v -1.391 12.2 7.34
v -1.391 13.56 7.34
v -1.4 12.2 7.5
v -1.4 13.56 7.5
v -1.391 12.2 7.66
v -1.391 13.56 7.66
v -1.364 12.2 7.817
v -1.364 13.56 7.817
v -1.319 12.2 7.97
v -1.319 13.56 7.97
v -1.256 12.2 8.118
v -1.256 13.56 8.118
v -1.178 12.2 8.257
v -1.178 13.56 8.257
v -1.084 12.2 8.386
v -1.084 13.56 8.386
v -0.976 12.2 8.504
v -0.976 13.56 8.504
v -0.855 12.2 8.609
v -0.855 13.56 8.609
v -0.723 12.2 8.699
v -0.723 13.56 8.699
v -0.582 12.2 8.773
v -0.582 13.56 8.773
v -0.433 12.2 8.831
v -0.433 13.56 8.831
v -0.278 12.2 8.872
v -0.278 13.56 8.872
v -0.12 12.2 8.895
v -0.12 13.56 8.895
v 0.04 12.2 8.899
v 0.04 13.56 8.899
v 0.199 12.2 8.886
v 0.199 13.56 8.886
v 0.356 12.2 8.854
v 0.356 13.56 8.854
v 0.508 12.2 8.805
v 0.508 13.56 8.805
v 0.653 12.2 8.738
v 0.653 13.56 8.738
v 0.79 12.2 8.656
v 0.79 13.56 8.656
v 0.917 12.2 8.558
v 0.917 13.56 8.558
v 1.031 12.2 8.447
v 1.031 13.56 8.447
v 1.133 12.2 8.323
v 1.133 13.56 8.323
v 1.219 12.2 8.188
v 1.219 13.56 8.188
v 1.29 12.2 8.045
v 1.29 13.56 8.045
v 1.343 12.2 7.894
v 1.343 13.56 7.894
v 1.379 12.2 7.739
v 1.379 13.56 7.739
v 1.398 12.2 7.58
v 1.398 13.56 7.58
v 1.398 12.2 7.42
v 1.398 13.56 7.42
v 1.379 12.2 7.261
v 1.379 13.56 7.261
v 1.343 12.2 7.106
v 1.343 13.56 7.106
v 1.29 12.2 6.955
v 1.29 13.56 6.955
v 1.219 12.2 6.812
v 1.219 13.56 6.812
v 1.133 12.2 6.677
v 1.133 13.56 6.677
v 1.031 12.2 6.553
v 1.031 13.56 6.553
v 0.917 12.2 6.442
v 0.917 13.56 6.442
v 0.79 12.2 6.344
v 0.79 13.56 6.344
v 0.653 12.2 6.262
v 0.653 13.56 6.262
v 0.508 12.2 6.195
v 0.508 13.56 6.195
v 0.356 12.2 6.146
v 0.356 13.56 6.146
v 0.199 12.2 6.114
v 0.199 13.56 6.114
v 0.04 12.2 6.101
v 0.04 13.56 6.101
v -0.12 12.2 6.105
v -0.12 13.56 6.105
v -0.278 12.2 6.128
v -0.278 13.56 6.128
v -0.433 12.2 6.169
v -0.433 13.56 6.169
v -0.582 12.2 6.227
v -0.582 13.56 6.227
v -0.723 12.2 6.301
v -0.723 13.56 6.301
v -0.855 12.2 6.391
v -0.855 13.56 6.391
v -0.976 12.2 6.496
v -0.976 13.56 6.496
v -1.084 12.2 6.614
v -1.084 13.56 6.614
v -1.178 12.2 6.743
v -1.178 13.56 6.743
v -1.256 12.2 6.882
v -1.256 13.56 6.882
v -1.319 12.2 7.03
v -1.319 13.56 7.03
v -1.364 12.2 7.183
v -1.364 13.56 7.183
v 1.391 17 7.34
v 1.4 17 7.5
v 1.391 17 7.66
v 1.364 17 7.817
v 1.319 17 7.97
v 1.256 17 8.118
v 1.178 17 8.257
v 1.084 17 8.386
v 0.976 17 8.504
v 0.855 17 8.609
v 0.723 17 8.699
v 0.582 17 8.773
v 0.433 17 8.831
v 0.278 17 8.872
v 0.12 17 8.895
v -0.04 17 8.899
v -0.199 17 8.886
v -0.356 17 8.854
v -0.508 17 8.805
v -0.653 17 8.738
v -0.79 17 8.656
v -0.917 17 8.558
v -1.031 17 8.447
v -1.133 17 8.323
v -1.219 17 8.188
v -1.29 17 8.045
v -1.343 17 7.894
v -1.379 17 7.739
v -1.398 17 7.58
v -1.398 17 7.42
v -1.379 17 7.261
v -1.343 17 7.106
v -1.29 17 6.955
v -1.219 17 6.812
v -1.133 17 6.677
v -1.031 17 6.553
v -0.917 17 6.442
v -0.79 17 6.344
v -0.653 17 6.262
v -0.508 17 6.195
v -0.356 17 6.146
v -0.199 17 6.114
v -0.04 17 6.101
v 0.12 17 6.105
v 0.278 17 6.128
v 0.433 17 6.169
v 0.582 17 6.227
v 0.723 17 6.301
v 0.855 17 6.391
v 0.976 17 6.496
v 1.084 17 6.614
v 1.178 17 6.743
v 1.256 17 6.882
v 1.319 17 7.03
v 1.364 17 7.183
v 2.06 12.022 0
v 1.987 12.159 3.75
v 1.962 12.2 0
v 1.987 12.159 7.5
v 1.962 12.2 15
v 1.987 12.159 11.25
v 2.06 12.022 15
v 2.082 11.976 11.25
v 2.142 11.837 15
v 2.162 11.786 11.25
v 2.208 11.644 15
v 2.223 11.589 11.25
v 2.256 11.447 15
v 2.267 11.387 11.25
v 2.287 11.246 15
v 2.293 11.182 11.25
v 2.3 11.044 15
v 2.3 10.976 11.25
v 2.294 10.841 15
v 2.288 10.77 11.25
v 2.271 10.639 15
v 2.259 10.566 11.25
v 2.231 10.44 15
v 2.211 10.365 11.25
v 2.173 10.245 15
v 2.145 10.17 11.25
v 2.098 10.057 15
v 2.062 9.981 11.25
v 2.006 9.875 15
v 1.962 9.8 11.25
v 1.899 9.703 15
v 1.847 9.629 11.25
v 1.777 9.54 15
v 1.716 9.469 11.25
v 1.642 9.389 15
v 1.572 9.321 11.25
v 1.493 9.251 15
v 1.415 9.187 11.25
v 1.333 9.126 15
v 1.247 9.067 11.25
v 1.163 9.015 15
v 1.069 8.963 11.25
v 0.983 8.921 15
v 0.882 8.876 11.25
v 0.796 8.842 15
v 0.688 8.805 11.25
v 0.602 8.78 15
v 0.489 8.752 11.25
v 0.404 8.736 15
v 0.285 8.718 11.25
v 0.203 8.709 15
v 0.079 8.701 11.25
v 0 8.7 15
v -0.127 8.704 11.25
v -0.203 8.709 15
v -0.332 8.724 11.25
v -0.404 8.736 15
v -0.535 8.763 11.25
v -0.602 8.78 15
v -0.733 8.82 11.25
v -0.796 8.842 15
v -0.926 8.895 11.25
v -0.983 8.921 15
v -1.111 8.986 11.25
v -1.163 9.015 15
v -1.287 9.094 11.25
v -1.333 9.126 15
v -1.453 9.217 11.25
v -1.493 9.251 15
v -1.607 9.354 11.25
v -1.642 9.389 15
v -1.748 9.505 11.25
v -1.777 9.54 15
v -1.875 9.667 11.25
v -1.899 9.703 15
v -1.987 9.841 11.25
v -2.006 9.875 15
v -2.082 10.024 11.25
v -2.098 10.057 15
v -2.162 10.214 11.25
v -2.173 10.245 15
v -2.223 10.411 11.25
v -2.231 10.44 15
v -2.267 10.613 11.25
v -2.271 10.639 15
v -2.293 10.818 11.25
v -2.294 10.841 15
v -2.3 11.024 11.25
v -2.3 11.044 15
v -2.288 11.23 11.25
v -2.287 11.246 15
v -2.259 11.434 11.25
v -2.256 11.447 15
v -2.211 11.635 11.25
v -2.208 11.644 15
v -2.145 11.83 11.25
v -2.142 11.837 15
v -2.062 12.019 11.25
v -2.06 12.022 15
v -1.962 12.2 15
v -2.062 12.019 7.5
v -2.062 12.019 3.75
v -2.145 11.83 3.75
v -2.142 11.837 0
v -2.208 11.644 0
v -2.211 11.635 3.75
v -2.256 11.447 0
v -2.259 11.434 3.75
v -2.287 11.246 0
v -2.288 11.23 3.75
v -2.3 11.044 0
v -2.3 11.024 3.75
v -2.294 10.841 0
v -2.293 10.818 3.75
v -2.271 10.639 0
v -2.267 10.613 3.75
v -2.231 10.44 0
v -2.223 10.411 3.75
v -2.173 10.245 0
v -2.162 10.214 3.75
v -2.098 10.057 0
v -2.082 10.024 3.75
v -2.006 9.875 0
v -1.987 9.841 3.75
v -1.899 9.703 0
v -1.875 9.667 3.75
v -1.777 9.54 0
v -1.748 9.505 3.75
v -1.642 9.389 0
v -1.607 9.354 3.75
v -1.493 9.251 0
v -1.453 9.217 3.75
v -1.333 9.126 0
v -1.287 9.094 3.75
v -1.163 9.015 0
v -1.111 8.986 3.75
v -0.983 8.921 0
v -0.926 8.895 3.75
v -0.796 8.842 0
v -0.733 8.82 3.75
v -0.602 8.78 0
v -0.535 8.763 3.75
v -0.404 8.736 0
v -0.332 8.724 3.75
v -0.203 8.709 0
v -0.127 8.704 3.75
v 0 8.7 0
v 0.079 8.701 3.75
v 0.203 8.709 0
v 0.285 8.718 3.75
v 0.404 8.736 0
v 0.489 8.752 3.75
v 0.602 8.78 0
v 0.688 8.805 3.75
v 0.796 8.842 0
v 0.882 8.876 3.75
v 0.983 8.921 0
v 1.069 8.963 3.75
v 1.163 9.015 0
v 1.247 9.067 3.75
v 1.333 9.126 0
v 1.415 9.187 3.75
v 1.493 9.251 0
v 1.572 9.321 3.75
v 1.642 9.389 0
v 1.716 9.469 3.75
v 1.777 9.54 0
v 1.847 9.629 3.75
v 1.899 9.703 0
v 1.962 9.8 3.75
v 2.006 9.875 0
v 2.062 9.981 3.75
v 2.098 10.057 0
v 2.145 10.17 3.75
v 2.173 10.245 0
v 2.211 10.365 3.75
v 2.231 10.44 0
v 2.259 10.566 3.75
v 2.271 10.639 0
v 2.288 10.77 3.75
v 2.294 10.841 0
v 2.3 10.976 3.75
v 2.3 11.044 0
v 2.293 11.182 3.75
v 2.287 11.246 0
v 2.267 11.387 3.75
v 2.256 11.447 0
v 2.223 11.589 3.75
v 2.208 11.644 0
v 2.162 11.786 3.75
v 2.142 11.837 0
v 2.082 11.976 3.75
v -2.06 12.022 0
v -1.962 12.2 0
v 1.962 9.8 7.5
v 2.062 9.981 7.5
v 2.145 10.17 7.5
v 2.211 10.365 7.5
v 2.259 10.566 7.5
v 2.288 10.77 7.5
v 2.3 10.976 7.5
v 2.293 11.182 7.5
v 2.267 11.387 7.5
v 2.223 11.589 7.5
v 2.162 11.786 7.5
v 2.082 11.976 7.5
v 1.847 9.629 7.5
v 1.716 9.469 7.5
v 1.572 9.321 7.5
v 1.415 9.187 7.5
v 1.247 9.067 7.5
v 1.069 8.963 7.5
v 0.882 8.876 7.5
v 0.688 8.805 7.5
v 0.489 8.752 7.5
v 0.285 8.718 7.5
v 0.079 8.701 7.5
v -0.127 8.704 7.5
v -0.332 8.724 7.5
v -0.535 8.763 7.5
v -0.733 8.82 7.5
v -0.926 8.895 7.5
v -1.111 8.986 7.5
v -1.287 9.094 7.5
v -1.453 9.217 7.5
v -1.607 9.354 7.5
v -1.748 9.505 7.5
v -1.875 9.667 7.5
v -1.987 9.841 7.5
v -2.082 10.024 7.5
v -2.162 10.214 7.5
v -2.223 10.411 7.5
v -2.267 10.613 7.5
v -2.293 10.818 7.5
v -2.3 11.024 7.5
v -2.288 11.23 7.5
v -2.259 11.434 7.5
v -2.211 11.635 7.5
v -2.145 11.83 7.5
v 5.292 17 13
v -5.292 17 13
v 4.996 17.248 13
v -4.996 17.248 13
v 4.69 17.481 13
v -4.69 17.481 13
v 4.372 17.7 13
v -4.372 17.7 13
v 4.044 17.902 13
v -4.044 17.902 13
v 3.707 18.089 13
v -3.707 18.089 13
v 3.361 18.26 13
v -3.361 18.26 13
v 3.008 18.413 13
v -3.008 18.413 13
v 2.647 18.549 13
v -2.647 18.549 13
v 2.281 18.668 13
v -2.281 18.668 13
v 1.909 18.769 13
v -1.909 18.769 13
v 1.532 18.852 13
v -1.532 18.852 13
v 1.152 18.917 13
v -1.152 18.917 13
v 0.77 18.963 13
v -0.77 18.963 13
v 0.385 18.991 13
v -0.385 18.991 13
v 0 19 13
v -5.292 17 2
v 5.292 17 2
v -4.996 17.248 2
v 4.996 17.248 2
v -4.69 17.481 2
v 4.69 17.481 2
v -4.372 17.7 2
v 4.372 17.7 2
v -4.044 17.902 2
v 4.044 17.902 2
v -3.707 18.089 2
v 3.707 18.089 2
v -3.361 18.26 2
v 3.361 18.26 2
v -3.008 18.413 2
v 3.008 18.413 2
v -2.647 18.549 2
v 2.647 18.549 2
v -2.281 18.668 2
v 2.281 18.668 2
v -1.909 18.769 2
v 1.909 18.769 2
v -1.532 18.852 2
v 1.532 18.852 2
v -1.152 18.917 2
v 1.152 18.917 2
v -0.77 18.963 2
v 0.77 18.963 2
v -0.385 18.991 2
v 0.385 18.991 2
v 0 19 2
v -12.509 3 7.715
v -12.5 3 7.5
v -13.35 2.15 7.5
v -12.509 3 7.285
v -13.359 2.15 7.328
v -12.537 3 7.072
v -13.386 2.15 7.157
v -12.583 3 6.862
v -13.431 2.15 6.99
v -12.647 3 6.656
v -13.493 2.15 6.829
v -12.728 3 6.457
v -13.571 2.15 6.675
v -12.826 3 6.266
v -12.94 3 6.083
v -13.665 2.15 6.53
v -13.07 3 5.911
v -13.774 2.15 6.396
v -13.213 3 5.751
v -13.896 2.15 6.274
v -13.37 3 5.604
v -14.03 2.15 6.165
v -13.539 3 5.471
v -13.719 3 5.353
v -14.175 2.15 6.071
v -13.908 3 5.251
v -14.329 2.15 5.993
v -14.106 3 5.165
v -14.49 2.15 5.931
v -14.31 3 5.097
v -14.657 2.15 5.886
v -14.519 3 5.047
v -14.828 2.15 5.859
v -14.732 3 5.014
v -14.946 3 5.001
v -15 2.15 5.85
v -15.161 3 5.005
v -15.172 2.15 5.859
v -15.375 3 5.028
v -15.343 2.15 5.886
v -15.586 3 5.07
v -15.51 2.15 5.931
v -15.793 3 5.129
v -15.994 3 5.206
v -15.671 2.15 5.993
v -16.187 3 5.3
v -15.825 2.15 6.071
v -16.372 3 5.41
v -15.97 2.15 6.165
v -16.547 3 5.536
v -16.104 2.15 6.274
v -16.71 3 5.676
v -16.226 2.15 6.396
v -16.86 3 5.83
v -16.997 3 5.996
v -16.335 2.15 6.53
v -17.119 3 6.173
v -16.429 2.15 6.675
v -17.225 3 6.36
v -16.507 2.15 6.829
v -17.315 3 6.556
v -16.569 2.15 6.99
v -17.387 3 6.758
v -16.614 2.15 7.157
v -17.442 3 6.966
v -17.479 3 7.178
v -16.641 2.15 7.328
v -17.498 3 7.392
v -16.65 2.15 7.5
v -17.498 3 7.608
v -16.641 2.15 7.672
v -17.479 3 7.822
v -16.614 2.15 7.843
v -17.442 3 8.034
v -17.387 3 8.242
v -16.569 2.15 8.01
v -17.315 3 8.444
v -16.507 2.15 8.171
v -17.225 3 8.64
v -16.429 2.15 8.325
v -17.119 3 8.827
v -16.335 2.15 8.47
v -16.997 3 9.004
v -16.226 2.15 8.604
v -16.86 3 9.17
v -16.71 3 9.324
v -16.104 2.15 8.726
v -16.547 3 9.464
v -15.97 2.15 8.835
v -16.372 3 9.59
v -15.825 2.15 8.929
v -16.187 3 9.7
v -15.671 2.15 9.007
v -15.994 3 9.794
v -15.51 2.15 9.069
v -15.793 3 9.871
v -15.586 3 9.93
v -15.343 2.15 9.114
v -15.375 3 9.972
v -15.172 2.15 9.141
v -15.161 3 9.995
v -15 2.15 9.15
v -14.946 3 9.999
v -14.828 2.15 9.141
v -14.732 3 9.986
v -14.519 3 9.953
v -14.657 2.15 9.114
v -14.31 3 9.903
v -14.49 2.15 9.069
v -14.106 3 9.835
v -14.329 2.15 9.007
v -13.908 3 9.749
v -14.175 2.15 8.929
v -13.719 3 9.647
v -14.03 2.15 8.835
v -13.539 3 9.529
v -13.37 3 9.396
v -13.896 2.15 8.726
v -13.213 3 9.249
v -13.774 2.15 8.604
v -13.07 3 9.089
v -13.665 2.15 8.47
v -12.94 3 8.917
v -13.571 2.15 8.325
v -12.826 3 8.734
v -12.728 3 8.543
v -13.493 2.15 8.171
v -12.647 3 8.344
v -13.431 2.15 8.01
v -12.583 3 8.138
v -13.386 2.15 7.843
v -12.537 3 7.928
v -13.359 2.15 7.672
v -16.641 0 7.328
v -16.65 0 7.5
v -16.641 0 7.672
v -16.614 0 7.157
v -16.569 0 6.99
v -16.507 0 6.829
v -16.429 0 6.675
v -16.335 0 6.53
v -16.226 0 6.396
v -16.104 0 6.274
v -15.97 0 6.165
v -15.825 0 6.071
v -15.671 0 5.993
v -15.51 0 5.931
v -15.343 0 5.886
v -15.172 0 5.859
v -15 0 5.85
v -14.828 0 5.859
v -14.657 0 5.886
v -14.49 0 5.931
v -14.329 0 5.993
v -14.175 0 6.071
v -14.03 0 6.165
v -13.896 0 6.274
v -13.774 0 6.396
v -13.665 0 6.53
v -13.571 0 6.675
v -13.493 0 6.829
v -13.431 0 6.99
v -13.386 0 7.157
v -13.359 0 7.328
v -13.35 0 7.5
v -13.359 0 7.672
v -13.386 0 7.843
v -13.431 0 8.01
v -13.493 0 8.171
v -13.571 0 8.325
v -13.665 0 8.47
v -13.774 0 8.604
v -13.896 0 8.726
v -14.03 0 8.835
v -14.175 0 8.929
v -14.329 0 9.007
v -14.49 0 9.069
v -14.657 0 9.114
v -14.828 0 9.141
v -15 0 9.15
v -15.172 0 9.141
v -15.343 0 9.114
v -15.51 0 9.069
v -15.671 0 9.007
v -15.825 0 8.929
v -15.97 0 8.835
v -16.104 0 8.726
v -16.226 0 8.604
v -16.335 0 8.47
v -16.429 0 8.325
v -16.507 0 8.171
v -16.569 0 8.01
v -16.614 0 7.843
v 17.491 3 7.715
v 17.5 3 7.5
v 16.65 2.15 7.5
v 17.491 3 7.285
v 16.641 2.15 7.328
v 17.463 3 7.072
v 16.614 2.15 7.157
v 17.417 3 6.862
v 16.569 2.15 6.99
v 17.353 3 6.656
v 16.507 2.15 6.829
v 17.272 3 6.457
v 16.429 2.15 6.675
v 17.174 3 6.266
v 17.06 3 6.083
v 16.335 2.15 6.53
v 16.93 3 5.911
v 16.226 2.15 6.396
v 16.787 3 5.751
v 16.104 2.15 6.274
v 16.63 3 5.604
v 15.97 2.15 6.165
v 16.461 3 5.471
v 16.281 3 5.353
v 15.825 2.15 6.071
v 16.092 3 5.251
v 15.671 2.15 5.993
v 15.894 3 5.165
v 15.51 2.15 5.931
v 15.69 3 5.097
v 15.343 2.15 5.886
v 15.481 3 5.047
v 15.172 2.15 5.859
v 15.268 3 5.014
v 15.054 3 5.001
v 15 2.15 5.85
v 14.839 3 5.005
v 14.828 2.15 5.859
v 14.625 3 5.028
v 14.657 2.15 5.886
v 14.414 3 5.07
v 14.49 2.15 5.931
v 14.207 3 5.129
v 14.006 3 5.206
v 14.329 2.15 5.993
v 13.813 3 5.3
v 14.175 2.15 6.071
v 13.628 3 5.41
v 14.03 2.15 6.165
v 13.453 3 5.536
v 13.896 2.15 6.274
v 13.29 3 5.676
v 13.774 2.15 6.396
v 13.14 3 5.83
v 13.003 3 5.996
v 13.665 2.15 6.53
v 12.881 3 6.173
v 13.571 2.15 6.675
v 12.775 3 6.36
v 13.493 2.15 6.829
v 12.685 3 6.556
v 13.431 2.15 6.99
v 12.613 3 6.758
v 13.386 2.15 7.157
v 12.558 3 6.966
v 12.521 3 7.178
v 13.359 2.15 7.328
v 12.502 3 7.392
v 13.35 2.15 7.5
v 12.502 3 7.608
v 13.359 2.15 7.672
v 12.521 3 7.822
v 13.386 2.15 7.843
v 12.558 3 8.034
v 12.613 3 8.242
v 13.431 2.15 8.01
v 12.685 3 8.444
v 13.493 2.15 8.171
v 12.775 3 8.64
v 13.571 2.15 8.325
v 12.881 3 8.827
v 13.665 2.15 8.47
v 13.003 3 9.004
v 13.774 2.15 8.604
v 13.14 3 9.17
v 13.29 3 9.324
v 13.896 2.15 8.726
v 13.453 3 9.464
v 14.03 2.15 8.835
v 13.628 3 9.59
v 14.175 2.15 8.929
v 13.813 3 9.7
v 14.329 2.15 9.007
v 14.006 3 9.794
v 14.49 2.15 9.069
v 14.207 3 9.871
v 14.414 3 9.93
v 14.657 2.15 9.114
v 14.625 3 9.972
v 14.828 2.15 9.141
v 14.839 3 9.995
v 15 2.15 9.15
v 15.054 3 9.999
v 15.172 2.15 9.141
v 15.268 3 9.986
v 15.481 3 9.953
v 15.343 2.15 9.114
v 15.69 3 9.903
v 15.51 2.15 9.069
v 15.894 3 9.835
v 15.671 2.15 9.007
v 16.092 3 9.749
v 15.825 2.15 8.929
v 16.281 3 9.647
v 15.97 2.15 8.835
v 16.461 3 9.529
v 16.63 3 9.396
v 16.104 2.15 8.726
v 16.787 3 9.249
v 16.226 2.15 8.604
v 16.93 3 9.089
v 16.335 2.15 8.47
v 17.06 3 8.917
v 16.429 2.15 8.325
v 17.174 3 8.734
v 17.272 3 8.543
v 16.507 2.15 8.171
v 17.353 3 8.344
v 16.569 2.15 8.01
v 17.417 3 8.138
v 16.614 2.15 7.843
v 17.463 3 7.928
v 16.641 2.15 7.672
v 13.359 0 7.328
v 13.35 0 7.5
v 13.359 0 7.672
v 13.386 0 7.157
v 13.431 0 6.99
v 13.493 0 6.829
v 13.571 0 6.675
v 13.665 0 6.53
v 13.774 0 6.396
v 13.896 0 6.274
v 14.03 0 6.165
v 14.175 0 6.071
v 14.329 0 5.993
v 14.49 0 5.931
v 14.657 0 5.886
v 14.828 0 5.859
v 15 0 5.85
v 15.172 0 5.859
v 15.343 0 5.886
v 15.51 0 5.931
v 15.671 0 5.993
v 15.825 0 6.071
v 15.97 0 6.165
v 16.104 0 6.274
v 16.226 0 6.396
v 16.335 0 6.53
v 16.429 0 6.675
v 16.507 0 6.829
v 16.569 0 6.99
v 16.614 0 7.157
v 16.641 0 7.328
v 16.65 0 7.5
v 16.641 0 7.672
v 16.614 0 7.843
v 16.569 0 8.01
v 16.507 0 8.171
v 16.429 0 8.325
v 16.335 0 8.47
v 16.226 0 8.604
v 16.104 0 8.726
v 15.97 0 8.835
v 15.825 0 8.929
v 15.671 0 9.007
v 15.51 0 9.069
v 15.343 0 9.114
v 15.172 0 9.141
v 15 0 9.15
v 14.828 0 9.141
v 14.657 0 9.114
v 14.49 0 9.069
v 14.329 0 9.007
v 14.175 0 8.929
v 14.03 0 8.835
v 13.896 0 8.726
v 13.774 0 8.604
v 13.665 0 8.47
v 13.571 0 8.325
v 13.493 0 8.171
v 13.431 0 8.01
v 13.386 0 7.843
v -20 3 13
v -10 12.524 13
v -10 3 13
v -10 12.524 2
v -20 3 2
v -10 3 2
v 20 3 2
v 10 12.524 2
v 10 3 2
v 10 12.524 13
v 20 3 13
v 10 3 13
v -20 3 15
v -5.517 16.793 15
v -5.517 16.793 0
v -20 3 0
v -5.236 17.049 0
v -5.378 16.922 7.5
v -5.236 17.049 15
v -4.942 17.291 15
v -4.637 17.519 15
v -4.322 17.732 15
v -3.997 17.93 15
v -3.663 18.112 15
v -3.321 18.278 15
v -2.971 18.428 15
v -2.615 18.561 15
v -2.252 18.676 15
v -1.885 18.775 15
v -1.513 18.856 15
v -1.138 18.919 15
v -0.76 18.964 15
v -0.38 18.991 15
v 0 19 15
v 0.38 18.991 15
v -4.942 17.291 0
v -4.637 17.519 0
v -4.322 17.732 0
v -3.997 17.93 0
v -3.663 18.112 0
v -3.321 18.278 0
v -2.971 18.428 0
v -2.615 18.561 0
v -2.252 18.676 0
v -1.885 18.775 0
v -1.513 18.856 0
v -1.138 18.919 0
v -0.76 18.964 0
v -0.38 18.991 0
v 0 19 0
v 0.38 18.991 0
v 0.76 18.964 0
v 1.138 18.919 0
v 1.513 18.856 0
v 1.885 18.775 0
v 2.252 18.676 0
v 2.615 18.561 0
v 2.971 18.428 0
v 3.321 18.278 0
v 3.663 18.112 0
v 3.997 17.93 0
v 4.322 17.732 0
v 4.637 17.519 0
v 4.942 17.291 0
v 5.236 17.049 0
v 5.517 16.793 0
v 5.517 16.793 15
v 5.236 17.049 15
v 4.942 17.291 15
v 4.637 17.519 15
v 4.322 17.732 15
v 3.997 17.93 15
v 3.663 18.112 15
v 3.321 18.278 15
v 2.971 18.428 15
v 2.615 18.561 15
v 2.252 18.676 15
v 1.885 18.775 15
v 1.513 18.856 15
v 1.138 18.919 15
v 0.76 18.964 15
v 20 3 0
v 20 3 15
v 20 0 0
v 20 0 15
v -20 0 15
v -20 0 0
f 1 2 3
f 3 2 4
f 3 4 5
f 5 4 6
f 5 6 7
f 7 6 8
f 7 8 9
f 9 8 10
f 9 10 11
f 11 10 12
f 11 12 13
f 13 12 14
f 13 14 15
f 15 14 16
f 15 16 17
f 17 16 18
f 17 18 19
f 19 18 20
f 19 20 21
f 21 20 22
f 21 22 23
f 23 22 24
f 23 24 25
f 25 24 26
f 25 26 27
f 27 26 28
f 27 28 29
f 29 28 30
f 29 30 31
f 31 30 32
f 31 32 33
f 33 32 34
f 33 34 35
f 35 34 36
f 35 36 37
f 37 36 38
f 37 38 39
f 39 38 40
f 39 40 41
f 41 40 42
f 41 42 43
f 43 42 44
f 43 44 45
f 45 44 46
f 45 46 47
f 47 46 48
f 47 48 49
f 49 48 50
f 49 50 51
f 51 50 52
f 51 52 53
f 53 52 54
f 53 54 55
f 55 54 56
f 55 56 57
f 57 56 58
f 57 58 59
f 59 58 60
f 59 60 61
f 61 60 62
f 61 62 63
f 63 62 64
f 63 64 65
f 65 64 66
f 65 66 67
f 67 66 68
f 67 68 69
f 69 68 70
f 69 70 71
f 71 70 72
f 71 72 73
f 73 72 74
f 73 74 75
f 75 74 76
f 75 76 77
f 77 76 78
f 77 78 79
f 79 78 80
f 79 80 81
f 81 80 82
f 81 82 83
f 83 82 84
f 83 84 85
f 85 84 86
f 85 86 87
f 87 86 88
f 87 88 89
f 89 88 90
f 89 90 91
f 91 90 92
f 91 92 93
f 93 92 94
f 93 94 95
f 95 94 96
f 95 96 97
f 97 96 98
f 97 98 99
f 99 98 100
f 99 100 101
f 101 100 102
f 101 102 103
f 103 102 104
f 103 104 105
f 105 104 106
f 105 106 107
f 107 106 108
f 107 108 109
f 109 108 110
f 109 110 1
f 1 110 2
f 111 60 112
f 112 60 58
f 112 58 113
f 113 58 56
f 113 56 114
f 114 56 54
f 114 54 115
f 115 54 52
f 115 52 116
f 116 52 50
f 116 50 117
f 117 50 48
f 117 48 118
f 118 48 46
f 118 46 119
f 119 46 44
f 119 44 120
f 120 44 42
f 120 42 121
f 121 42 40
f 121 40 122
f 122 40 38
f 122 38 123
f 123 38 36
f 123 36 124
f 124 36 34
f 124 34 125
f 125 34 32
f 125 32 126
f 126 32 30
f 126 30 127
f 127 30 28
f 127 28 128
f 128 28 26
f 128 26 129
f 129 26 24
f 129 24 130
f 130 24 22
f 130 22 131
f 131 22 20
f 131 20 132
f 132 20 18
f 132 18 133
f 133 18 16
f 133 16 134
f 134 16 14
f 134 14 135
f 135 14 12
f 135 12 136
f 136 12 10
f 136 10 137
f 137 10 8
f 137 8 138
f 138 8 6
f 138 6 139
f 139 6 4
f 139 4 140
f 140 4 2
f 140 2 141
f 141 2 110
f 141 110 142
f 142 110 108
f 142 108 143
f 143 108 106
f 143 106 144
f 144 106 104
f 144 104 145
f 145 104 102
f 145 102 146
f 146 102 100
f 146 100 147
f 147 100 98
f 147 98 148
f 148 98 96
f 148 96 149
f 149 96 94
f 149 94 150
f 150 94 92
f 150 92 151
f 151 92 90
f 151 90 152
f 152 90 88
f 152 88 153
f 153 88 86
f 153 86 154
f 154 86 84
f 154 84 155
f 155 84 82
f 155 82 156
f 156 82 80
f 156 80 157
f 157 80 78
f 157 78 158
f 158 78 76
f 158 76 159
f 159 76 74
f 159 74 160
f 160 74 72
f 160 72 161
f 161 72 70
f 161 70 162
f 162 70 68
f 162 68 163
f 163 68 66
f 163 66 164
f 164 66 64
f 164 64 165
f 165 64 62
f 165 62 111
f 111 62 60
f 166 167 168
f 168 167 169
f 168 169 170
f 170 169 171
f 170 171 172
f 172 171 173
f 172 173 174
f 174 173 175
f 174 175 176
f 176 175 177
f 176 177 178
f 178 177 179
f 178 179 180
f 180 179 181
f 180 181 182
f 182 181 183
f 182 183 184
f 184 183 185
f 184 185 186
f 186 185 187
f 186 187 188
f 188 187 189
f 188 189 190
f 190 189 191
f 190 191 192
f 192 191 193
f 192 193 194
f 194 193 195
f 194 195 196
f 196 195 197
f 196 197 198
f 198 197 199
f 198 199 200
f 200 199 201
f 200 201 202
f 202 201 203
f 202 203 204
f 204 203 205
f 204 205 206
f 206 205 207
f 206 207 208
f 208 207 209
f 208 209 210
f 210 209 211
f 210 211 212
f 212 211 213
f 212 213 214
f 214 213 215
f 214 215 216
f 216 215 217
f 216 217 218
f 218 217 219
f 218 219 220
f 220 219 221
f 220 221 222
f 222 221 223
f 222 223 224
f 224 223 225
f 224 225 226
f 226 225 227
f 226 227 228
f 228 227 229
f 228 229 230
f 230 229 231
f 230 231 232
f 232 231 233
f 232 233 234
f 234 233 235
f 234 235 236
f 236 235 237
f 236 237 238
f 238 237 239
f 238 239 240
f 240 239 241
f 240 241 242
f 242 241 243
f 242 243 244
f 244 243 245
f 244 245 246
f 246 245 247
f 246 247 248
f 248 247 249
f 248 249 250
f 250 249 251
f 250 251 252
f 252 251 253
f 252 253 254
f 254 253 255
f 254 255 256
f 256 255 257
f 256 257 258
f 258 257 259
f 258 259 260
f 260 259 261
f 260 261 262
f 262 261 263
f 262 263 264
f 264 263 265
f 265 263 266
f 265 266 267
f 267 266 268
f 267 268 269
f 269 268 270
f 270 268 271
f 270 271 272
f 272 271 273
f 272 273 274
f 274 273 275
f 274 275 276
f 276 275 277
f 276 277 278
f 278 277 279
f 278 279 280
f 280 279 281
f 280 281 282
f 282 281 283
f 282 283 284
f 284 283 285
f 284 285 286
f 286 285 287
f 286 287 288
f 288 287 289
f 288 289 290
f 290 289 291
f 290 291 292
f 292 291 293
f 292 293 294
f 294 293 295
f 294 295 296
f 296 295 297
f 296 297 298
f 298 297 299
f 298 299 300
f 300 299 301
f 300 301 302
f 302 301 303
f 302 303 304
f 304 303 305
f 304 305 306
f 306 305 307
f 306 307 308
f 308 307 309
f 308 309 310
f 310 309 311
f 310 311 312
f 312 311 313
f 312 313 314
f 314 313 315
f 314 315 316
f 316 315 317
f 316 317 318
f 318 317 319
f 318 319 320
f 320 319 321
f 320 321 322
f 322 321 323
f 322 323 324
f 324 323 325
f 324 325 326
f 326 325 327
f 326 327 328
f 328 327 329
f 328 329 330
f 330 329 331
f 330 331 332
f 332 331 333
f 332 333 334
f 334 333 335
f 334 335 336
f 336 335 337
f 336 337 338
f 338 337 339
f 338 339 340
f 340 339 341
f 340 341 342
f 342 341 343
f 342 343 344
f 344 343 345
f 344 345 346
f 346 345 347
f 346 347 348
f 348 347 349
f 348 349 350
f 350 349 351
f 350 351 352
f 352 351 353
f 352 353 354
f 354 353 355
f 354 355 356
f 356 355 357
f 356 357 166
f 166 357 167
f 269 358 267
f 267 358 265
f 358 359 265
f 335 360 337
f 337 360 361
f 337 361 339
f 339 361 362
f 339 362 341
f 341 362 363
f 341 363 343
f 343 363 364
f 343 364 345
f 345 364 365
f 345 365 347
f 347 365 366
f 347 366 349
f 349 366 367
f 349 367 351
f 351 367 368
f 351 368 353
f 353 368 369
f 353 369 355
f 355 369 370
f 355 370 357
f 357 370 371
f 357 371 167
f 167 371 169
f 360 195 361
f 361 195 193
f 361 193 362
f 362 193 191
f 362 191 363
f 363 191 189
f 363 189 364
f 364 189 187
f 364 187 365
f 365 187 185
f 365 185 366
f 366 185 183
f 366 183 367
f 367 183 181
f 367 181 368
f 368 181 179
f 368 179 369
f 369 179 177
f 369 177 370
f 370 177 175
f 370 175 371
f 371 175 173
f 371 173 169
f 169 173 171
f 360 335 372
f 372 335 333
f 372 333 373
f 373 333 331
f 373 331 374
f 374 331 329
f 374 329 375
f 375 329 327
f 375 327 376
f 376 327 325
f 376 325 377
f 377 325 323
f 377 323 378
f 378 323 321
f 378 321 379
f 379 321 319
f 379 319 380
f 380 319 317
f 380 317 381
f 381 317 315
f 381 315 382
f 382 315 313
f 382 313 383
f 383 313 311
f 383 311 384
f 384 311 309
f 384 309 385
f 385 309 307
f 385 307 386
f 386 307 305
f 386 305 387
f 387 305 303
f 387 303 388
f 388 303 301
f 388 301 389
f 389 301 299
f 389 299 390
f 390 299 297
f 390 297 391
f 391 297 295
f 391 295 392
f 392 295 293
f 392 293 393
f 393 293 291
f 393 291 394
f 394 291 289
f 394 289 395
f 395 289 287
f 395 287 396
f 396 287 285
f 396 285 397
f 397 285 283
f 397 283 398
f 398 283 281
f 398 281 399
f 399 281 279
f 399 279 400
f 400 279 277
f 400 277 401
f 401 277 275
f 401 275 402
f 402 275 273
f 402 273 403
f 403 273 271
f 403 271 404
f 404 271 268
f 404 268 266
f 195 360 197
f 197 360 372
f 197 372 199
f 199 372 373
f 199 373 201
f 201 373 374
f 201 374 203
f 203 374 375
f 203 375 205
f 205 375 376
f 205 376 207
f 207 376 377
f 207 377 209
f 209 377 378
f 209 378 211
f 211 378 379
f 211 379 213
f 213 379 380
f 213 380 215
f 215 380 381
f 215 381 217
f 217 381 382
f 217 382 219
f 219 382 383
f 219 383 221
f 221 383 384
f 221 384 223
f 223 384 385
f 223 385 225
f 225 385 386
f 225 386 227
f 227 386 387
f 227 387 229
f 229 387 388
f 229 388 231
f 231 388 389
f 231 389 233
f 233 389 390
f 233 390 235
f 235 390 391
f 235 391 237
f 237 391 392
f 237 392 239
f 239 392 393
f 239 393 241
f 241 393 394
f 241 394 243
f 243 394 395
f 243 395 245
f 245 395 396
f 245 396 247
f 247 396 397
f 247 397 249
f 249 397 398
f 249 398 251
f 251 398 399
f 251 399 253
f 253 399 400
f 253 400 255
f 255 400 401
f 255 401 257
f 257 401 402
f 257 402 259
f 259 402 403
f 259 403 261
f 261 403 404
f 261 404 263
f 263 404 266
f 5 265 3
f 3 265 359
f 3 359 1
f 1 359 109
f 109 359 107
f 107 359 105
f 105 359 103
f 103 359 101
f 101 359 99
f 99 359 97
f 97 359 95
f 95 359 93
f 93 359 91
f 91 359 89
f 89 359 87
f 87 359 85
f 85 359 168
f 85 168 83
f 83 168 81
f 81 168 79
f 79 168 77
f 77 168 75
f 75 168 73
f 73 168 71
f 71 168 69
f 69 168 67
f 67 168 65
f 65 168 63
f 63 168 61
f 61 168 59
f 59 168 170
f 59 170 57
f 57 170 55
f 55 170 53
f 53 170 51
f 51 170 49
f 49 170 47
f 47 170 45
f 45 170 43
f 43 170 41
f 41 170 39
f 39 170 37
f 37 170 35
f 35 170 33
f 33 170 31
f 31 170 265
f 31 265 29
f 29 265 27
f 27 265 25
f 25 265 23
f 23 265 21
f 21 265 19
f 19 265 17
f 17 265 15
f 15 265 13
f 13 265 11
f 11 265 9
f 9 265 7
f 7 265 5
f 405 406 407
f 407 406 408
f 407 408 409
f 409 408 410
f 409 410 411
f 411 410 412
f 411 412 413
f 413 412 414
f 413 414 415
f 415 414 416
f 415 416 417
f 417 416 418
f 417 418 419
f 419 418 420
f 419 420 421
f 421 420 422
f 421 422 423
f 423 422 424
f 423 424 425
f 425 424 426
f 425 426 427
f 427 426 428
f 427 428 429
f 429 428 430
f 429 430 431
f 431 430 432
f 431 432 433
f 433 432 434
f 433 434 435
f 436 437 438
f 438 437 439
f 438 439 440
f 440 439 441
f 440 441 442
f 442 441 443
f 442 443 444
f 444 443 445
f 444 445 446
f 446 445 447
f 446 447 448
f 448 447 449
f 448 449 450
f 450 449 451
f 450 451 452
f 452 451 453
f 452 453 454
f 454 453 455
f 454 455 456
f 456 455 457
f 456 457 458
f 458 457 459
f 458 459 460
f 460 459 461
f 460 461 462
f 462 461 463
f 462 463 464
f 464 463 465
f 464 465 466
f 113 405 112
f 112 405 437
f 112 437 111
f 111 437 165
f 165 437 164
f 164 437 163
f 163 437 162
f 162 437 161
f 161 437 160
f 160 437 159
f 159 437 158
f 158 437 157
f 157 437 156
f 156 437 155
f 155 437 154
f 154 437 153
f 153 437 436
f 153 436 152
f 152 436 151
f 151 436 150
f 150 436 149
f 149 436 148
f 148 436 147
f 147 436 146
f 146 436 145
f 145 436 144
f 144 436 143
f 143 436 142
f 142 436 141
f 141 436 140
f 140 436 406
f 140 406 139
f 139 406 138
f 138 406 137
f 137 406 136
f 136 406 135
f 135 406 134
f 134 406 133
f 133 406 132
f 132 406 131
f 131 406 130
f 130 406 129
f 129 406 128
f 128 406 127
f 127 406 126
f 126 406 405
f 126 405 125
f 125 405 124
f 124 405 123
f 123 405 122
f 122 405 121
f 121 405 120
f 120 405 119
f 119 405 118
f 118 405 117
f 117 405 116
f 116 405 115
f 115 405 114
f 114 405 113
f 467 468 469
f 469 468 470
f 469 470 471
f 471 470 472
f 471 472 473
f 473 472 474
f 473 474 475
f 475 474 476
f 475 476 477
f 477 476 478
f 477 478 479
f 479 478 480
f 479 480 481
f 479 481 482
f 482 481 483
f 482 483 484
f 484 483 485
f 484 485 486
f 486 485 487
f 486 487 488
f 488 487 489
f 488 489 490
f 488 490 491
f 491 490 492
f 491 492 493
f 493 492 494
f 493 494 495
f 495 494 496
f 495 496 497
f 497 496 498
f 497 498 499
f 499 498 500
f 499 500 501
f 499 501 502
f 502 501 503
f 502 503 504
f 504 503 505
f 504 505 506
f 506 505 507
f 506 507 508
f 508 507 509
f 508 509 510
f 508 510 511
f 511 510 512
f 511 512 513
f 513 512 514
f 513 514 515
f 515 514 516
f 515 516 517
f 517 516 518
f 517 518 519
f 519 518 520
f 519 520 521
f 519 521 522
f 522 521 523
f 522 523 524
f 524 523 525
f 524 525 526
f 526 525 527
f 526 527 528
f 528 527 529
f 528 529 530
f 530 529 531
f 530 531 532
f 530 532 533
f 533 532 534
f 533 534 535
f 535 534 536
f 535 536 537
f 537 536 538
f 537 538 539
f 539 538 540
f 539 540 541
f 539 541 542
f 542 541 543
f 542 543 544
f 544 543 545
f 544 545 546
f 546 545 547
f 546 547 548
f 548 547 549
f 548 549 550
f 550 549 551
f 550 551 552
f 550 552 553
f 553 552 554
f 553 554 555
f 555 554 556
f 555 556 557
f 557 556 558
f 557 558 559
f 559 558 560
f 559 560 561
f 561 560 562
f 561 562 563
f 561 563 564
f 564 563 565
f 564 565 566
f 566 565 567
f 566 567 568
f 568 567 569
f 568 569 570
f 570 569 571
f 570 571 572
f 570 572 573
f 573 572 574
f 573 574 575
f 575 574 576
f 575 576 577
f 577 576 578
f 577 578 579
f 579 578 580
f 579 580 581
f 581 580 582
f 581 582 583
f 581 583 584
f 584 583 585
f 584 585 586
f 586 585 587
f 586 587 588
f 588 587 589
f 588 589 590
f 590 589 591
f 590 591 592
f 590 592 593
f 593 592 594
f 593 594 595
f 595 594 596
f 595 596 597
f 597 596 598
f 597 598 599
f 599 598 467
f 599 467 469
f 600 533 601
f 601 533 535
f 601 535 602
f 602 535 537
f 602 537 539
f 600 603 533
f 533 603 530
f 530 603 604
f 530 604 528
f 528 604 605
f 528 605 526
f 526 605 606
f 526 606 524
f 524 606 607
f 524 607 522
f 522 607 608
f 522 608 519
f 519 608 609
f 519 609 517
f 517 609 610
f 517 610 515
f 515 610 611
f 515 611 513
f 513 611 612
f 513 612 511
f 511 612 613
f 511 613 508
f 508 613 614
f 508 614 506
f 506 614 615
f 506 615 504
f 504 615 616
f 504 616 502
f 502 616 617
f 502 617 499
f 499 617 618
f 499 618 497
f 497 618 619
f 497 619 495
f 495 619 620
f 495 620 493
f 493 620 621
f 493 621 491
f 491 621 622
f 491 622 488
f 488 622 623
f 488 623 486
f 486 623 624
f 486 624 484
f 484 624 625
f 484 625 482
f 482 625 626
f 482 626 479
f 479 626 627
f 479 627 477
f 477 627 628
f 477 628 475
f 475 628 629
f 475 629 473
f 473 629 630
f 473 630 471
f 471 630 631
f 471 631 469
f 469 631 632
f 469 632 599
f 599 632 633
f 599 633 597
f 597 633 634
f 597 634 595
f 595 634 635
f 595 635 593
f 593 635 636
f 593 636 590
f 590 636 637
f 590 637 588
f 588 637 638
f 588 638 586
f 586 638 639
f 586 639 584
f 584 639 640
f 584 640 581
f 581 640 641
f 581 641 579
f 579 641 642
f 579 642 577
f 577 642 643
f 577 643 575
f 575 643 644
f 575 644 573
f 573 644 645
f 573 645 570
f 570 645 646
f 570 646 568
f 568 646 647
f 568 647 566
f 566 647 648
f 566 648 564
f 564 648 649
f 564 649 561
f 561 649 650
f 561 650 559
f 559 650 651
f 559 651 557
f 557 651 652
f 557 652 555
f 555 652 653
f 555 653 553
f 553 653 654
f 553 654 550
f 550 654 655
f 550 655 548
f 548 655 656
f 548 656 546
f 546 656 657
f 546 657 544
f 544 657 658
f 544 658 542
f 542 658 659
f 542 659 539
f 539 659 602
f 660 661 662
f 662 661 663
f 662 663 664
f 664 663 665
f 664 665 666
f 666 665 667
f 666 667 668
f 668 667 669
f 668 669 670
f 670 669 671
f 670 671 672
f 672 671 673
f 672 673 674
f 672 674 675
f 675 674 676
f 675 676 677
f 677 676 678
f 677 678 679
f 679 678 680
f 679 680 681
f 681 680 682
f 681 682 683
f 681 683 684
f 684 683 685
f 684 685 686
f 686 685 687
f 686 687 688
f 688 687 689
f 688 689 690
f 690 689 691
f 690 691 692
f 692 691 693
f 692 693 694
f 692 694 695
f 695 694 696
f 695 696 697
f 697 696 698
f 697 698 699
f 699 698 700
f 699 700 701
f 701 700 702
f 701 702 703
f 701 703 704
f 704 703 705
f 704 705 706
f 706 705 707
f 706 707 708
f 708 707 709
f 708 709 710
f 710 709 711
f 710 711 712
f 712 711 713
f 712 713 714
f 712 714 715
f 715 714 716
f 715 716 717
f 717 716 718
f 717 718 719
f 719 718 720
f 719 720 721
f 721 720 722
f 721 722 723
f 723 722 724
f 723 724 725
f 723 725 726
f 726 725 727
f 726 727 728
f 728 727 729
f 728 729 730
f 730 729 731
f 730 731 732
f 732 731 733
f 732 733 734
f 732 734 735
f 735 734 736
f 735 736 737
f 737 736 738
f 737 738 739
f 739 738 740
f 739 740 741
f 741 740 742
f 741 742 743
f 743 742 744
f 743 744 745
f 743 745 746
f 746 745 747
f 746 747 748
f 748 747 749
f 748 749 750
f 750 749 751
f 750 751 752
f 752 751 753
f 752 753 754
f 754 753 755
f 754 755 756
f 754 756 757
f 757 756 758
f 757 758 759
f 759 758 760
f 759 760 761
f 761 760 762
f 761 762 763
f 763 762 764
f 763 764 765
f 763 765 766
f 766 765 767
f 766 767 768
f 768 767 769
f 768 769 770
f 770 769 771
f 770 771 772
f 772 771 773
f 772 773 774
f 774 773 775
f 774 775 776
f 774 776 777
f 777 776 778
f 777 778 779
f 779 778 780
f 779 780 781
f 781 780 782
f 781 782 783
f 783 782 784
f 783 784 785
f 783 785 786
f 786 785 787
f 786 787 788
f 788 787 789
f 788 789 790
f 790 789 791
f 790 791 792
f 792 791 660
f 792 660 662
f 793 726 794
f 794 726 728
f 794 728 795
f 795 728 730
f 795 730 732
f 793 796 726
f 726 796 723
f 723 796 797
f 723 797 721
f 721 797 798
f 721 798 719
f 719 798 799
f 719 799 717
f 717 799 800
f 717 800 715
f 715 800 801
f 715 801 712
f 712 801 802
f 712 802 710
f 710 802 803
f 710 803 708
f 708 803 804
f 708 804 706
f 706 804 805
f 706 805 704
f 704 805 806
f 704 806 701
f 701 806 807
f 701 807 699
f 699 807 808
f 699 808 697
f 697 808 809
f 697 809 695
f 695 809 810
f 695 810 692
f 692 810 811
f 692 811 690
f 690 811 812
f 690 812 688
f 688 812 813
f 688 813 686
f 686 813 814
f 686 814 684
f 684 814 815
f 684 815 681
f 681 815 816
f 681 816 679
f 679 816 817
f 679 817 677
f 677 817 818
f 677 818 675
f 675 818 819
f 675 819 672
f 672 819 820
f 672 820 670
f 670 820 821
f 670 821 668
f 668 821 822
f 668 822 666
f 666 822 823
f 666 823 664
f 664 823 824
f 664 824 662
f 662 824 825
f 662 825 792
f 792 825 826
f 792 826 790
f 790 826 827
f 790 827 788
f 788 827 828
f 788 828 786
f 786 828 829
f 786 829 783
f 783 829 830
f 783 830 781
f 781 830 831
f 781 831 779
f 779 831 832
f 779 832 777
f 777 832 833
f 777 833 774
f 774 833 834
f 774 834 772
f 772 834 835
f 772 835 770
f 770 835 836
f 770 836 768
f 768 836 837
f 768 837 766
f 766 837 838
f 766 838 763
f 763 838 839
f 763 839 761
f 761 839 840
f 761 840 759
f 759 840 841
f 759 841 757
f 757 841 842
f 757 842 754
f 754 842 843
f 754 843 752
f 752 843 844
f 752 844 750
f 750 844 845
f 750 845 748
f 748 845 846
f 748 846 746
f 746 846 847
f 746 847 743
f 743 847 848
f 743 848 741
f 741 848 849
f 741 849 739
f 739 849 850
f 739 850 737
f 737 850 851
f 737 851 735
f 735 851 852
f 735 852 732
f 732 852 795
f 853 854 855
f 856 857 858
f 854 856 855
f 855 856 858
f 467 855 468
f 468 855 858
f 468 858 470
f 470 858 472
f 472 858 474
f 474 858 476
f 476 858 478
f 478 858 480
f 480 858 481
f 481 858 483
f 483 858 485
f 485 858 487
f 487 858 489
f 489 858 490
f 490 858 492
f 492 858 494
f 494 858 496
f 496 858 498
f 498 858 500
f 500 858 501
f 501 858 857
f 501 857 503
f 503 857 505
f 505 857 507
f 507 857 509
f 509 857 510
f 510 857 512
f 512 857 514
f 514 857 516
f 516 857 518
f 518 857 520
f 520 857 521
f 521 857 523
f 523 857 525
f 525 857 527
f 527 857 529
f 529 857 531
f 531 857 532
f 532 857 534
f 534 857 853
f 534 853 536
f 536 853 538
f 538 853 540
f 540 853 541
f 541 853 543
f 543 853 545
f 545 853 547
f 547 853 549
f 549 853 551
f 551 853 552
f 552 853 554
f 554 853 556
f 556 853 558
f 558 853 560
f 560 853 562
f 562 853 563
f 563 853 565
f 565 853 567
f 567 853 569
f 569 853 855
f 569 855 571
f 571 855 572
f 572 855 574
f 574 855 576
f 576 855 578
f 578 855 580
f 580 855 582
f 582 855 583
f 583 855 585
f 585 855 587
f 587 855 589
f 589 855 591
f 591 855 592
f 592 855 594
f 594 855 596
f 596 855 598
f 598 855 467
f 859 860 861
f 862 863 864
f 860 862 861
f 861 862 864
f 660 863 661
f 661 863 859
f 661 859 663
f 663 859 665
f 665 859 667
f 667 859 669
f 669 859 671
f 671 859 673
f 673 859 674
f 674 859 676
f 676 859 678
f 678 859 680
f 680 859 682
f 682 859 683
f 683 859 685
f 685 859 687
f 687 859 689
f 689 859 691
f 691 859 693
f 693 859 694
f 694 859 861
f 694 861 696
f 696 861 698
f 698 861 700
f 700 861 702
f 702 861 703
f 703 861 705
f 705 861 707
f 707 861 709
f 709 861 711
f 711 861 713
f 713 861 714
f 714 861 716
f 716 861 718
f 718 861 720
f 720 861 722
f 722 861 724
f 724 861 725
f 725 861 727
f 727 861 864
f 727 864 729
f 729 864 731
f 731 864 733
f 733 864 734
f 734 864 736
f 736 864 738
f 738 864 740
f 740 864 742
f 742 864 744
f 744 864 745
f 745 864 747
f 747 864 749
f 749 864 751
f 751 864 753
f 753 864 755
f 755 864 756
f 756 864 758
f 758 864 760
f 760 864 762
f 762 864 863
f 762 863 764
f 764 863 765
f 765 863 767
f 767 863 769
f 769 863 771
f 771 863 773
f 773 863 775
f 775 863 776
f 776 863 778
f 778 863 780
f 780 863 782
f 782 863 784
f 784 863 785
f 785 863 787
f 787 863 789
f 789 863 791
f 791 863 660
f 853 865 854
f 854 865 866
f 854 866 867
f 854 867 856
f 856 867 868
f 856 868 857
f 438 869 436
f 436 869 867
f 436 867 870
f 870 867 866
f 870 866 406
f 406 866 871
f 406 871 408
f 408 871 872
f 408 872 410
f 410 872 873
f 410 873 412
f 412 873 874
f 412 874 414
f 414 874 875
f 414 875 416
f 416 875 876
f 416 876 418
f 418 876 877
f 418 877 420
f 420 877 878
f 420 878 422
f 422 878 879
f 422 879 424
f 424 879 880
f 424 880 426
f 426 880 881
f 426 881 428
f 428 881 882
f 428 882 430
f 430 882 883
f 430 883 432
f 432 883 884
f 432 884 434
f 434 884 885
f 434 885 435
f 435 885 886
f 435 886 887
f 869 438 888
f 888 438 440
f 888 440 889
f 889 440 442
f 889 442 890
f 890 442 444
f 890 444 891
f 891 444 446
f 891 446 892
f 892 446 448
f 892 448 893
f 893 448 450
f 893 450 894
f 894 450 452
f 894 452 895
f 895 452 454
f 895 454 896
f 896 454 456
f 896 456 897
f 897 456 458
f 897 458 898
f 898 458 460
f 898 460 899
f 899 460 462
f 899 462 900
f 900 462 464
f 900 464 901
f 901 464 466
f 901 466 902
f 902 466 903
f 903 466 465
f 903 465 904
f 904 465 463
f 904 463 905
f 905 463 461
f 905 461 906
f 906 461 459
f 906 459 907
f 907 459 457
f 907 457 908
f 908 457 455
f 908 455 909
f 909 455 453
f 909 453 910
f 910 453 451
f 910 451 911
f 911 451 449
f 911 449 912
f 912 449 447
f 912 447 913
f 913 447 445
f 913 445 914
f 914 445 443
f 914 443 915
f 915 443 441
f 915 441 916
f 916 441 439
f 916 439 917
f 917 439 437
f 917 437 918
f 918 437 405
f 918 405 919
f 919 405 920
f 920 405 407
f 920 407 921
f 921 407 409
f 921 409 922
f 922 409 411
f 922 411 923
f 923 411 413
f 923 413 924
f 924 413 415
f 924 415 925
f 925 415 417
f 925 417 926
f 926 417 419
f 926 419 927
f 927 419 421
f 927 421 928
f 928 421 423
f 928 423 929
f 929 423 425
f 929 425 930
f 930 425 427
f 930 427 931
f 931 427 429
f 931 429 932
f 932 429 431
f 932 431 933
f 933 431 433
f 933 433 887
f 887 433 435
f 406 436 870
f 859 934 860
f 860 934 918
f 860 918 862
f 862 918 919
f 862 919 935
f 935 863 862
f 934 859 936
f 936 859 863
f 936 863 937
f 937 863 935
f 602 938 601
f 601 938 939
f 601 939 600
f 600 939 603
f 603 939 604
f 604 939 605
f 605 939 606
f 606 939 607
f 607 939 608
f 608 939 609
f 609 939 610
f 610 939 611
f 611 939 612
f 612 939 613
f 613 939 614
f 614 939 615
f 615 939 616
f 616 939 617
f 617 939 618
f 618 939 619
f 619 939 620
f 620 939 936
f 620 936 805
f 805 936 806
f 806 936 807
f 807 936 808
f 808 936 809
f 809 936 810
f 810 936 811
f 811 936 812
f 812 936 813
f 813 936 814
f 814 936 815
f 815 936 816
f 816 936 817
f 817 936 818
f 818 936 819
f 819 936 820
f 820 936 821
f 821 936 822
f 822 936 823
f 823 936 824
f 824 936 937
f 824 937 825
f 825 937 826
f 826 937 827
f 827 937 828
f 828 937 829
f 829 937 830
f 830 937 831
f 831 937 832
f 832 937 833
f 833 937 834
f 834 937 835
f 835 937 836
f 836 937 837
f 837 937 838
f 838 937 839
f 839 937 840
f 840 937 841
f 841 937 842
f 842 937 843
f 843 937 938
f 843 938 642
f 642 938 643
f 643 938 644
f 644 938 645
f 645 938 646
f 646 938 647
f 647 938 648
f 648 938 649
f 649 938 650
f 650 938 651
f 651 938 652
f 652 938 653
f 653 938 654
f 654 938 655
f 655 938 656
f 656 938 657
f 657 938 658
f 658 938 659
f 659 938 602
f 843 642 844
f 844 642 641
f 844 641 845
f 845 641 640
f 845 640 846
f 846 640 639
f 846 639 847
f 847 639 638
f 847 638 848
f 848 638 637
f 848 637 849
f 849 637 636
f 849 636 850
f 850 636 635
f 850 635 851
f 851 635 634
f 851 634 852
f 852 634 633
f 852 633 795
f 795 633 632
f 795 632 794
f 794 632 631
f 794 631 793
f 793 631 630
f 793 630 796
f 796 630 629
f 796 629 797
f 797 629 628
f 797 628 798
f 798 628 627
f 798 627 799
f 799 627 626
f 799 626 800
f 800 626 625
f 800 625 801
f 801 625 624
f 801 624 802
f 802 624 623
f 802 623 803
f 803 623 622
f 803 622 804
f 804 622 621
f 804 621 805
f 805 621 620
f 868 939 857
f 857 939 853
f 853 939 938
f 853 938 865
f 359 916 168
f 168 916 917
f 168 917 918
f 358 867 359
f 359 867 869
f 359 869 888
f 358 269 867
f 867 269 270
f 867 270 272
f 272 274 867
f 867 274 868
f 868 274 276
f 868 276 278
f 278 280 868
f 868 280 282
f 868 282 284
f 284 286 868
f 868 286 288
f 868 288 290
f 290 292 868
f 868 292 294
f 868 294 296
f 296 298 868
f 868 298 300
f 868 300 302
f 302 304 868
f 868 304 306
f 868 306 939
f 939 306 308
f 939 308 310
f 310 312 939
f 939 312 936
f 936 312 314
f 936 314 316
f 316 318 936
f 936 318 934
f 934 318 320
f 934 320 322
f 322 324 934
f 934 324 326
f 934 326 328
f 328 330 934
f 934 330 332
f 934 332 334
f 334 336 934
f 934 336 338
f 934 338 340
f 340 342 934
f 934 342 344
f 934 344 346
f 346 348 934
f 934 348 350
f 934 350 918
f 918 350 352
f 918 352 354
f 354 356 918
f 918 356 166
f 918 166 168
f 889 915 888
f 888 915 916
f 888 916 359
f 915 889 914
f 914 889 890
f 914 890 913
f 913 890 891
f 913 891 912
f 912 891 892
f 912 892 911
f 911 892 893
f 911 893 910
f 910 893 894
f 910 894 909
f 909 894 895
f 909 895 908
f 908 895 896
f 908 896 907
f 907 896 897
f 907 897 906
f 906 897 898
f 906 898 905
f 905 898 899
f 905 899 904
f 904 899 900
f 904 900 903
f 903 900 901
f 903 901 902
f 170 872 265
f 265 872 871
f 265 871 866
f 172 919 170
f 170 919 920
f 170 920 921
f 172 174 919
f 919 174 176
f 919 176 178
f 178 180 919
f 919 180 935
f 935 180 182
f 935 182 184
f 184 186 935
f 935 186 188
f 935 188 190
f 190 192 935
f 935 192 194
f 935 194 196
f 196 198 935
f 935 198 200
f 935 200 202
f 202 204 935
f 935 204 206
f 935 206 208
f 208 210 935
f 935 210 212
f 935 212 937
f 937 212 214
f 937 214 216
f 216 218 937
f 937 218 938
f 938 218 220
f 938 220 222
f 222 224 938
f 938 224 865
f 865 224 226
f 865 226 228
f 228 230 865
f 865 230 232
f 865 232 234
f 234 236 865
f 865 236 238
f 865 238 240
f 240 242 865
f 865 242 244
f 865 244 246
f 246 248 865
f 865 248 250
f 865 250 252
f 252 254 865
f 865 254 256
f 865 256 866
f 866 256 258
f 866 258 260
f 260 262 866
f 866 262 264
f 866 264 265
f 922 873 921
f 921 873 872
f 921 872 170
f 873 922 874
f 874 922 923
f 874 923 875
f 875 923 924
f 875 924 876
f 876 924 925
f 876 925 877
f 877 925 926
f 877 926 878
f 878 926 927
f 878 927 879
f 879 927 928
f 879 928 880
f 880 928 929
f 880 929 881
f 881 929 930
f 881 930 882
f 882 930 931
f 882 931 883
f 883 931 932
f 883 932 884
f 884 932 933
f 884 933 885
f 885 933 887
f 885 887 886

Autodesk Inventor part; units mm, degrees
ref_plane "YZ Plane" through (0, 0, 0) normal (1, 0, 0) x (0, 1, 0)
sketch "Эскиз1" plane through (0, 0, 0) normal (0, 0, 1) x (1, 0, 0)
  line L0 (-20, 0) -> (20, 0)
  line L1 (20, 0) -> (20, 3)
  line L2 (20, 3) -> (5.5172, 16.7931)
  line L3 (0, 0) -> (0, 19)
  line L4 (-20, 0) -> (-20, 3)
  line L5 (-20, 3) -> (-5.5172, 16.7931)
  arc A0 (5.5172, 16.7931) -> (-5.5172, 16.7931) centre (0, 11) ccw
  dimension "d0" = 40
  dimension "d1" = 3
  dimension "d2" = 8
  dimension "d3" = 11
extrude "Выдавливание1" add sketch "Эскиз1" along normal blind 15
ref_plane "РабПлоскость1" through (20, 3, 15) normal (0, -1, 0) x (1, 0, 0)
sketch "Эскиз2" plane through (20, 3, 15) normal (0, -1, 0) x (1, 0, 0)
  line L0 (-40, -15) -> (-40, 0) projected
  line L1 (-40, -13) -> (-30, -13)
  line L2 (-30, -13) -> (-30, -2)
  line L3 (-30, -2) -> (-40, -2)
  line L4 (-40, -2) -> (-40, -13)
  line L5 (0, -15) -> (0, 0) projected
  line L6 (0, -13) -> (-10, -13)
  line L7 (-10, -13) -> (-10, -2)
  line L8 (-10, -2) -> (0, -2)
  line L9 (0, -2) -> (0, -13)
  line L10 (-40, -7.5) -> (0, -7.5)
  line L11 (-20, -15) -> (-20, 0)
  line L12 (-40, 0) -> (0, 0) projected
  point P0 (-10, -7.5)
  point P1 (-30, -7.5)
  point P2 (-40, -7.5)
  dimension "d6" = 20
  dimension "d7" = 11
extrude "Выдавливание2" cut sketch "Эскиз2" against normal through all contours L0 L10 L2 L1 | L0 L3 L2 L10 | L10 L5 L6 L7 | L7 L8 L5 L10
sketch "Эскиз3" plane through (20, 3, 15) normal (0, 1, 0) x (1, 0, 0)
  line L0 (-40, 13) -> (-40, 2) projected
  line L1 (-20, 15) -> (-20, 0)
  line L2 (-40, 0) -> (0, 0) projected
  point P0 (-35, 7.5)
  point P1 (-5, 7.5)
  point P2 (-40, 7.5)
  dimension "d17" = 30
hole "Отверстие1" at (-15, 3, 7.5) at (15, 3, 7.5) direction (0, -1, 0) diameter 3.3 end through all countersink diameter 5 countersink angle 90
ref_plane "РабПлоскость2" through (-20, 17, 0) normal (0, -1, 0) x (1, 0, 0)
sketch "Эскиз5" plane through (-20, 17, 0) normal (0, -1, 0) x (1, 0, 0)
  line L0 (0, 2) -> (10, 2) projected
  line L1 (30, 13) -> (30, 2) projected
  line L2 (10, 2) -> (30, 2)
  line L3 (30, 2) -> (30, 13)
  line L4 (30, 13) -> (10, 13)
  line L5 (10, 13) -> (10, 2)
  point P0 (20, 0)
extrude "Выдавливание3" cut sketch "Эскиз5" against normal through all
sketch "Эскиз6" plane through (0, 0, 15) normal (0, 0, 1) x (1, 0, 0)
  arc A0 (5.5172, 16.7931) -> (-5.5172, 16.7931) centre (0, 11) ccw projected
  arc A1 (-1.9621, 12.2) -> (1.9621, 12.2) centre (0, 11) ccw
  line L0 (-1.9621, 12.2) -> (1.9621, 12.2)
  point P0 (0, 0)
  dimension "d32" = 2.3
  dimension "d33" = 1.2
extrude "Выдавливание4" cut sketch "Эскиз6" against normal through all
sketch "Эскиз7" plane through (-20, 17, 0) normal (0, 1, 0) x (1, 0, 0)
  line L0 (14.7085, -13) -> (14.7085, -2) projected
  line L1 (14.7085, -13) -> (25.2915, -13) projected
  point P0 (20, 0)
  point P1 (20, -7.5)
  point P2 (14.7085, -7.5)
  point P3 (20, -13)
hole "Отверстие3" at (0, 17, 7.5) direction (0, -1, 0) diameter 2.8 depth 4.8
properties part number "engine_center"
